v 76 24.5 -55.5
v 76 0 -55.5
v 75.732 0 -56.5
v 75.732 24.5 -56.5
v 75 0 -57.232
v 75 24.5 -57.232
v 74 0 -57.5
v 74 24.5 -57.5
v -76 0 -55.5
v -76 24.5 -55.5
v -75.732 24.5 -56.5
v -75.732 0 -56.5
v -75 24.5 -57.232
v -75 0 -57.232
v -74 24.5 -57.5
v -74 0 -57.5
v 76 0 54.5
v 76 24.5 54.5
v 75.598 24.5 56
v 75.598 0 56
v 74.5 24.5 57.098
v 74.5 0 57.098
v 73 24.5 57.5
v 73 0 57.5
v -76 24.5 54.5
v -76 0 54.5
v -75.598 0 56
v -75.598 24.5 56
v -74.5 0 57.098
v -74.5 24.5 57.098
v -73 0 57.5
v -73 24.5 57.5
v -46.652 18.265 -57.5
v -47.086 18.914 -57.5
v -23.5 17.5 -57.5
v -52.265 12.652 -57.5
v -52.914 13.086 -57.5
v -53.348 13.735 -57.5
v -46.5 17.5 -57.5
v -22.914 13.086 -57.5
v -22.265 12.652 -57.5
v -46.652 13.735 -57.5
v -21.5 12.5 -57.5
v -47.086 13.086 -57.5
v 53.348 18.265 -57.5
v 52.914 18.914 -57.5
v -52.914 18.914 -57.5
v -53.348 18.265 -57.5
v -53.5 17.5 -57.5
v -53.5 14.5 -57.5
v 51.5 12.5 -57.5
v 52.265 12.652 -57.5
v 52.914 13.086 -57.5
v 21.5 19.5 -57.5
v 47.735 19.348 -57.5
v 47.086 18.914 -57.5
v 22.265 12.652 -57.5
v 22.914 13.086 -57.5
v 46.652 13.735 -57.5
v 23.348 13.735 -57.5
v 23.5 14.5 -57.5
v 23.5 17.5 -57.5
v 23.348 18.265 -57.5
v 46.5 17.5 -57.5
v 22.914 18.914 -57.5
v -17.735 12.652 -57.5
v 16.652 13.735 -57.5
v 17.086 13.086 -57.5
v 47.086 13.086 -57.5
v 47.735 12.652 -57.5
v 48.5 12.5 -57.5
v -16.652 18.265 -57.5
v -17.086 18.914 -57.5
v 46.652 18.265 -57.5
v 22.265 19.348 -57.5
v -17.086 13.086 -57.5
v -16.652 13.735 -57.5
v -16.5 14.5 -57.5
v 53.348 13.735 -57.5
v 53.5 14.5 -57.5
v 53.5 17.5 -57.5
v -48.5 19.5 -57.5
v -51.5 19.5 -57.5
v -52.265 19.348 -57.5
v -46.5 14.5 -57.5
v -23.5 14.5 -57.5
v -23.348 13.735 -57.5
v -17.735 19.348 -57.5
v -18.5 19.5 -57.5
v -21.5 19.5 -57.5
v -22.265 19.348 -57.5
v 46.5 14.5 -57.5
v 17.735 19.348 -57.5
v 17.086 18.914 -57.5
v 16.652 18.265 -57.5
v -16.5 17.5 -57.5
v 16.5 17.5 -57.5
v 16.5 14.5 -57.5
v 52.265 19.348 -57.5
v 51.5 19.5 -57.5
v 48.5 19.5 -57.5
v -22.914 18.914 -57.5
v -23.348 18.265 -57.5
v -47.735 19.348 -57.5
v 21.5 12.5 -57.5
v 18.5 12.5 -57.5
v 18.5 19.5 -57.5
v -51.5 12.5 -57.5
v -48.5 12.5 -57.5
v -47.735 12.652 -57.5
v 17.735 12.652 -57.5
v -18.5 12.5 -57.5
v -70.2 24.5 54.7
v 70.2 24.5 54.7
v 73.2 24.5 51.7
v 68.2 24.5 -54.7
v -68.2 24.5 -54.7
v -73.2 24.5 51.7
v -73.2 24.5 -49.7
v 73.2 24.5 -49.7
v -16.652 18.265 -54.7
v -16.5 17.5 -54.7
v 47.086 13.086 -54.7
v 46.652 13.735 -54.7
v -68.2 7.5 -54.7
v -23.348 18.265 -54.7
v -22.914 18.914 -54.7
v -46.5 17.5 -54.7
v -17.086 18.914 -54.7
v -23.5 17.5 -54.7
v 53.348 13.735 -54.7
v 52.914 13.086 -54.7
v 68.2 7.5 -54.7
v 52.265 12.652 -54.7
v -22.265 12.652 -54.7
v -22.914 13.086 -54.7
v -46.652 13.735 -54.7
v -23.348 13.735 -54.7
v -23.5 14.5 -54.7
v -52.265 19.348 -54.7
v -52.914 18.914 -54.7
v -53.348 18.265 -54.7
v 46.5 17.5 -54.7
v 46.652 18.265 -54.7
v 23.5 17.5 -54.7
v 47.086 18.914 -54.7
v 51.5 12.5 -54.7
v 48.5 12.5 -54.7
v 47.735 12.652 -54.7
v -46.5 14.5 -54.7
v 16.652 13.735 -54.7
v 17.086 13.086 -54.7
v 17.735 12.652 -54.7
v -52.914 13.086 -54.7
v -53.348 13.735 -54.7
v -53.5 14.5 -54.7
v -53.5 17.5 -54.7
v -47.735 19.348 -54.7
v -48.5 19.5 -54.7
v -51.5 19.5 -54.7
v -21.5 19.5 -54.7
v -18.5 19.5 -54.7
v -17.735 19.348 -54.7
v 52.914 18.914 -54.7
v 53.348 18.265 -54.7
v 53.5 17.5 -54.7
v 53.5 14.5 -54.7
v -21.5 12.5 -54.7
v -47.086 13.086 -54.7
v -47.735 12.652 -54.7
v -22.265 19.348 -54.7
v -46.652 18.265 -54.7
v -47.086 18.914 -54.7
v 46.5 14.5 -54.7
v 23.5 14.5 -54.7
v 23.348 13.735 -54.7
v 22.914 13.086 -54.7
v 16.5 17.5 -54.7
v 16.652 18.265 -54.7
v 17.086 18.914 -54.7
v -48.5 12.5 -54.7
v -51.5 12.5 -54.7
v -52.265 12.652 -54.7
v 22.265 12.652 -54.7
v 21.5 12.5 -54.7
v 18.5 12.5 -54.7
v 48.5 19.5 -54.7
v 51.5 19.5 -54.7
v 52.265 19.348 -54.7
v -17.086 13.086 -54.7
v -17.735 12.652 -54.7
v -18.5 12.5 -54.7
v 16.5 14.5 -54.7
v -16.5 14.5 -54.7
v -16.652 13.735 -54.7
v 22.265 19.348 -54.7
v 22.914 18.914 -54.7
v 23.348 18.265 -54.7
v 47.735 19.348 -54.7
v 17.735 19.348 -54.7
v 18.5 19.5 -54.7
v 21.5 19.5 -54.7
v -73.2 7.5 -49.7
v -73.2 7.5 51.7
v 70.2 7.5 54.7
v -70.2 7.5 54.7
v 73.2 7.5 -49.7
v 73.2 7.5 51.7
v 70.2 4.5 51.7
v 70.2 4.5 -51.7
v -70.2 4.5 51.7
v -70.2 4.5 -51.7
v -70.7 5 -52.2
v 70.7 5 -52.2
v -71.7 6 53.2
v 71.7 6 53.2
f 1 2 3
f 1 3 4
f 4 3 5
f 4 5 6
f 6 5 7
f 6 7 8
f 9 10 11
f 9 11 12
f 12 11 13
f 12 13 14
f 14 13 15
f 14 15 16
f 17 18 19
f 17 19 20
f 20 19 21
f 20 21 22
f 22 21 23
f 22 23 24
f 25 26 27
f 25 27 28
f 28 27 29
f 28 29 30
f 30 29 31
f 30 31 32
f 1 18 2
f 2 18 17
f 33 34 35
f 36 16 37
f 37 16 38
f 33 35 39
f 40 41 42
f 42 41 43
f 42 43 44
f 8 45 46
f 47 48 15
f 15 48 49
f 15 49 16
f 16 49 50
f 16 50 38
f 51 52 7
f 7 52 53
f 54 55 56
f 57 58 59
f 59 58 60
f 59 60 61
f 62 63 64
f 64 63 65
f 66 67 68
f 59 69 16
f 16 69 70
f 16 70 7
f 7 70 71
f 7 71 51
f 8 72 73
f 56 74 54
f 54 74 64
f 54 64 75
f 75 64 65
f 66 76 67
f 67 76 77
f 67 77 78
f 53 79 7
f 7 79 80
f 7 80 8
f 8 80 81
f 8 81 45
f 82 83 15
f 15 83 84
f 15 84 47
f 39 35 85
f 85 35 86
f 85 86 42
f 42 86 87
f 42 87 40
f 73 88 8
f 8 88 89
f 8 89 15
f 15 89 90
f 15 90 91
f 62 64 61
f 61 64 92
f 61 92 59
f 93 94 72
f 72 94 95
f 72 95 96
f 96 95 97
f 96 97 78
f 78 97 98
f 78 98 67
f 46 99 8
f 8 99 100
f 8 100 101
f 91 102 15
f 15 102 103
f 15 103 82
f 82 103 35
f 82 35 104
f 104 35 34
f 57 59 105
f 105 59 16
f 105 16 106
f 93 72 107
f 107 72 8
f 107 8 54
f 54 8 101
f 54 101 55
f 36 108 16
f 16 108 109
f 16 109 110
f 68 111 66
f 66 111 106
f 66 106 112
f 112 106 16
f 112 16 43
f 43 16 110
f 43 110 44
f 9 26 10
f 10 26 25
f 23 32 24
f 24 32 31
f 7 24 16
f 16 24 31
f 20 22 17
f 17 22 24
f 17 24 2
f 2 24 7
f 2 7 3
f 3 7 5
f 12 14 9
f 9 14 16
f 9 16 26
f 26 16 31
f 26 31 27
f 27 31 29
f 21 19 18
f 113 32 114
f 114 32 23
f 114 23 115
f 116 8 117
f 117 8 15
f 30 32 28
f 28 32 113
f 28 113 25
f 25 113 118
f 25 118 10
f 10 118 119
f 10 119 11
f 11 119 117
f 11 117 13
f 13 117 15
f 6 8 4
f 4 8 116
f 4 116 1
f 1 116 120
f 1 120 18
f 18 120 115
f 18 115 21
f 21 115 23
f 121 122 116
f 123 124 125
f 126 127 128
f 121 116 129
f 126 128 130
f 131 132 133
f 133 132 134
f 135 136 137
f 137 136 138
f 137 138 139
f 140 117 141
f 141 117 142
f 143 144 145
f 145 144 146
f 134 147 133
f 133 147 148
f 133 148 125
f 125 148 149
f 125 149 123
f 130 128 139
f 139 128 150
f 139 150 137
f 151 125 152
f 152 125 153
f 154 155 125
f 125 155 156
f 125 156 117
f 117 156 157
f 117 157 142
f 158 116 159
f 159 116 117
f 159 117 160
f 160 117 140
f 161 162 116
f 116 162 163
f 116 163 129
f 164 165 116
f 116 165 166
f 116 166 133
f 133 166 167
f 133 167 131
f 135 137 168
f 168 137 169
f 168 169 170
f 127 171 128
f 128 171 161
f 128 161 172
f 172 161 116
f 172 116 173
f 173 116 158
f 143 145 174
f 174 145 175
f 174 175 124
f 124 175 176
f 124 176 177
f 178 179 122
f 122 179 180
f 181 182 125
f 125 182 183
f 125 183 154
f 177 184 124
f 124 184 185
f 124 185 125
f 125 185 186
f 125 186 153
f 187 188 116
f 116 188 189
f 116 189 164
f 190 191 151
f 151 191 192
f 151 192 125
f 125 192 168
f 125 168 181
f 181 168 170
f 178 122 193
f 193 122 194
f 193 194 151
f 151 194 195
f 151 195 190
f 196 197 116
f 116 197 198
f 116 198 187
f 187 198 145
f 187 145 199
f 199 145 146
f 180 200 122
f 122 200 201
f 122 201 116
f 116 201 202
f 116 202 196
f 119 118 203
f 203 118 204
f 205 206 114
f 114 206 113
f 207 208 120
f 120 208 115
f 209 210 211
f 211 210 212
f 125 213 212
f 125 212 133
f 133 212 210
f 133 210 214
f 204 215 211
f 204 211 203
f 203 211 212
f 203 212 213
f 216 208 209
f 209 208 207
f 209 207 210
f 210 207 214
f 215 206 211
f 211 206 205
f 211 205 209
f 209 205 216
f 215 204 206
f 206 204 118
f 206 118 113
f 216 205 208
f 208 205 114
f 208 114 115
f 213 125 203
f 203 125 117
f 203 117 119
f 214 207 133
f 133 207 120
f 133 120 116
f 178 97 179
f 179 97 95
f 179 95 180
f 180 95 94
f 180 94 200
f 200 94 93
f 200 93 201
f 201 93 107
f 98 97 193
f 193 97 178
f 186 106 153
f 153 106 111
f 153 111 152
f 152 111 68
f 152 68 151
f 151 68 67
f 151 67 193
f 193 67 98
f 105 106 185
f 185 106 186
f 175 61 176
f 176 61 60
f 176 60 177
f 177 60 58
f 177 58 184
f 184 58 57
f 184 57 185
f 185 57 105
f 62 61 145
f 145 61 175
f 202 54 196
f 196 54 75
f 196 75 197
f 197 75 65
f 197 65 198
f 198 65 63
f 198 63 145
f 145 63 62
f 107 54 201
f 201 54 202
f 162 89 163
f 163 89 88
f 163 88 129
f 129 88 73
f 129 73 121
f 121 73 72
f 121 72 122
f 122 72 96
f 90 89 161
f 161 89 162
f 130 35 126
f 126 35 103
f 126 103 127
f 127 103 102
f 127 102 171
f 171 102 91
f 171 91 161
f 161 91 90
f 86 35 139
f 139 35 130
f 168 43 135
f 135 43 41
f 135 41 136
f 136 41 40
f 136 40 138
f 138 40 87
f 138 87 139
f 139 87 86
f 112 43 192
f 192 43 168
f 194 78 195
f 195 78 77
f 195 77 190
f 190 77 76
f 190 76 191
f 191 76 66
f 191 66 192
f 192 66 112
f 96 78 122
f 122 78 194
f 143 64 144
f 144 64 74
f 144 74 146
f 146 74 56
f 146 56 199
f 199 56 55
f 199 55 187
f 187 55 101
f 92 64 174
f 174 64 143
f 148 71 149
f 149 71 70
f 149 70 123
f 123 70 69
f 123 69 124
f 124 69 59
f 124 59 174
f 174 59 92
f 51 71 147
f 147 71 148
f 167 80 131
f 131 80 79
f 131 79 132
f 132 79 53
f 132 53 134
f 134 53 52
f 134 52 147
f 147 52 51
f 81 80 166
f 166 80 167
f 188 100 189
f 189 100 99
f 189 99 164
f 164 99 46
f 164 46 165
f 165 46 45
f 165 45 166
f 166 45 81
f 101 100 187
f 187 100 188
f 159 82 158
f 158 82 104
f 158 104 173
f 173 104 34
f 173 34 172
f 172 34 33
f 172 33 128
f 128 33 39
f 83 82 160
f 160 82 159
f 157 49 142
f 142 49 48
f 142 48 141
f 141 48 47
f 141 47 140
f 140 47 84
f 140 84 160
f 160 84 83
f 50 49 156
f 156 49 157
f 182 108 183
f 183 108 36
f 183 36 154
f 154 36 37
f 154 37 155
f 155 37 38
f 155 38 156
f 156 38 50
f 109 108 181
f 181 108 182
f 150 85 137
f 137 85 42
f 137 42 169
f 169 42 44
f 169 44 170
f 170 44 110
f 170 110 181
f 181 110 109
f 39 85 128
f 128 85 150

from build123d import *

# Parameters (mm, degrees)
ESBO_O2_W             = 152
ESBO_O2_H             = 115
BASE_DEPTH            = 4.5
ESBO_O3_W             = 152
ESBO_O3_H             = 115
ESBO_O3_W_2           = 146.4
ESBO_O3_H_2           = 109.4
PAREDES_DEPTH         = 20
CHANFRO_DA_BASE_SIZE  = 3
FILETE7_R             = 3
FILETE8_R             = 3
FILETE10_R            = 2
FILETE12_R            = 2
CHANFRO8_SIZE         = 3
CHANFRO9_SIZE         = 3
CHANFRO14_SIZE        = 5
CHANFRO17_SIZE        = 5
CORTE_EXTRUS_O4_DEPTH = 10


with BuildPart() as part:
    # Esboço2 → Base (new body)
    with BuildSketch(Plane(origin=(0, 0, 0), x_dir=(1, 0, 0), z_dir=(0, 1, 0))):
        Rectangle(ESBO_O2_W, ESBO_O2_H)
    extrude(amount=BASE_DEPTH)

    # Esboço3 → Paredes (add)
    with BuildSketch(Plane(origin=(0, 4.5, 0), x_dir=(1, 0, 0), z_dir=(0, 1, 0))):
        Rectangle(ESBO_O3_W, ESBO_O3_H)
        Rectangle(ESBO_O3_W_2, ESBO_O3_H_2, mode=Mode.SUBTRACT)
    extrude(amount=PAREDES_DEPTH)

    # Chanfro da Base
    chanfro_da_base_edges = [part.edges().sort_by_distance(p)[0] for p in [
        (0, 4.5, -54.7),
        (-73.2, 4.5, 0),
        (0, 4.5, 54.7),
        (73.2, 4.5, 0),
    ]]
    chamfer(chanfro_da_base_edges, length=CHANFRO_DA_BASE_SIZE)

    # Filete7
    filete7_edges = [part.edges().sort_by_distance(p)[0] for p in [
        (-76, 12.25, 57.5),
    ]]
    fillet(filete7_edges, radius=FILETE7_R)

    # Filete8
    filete8_edges = [part.edges().sort_by_distance(p)[0] for p in [
        (76, 12.25, 57.5),
    ]]
    fillet(filete8_edges, radius=FILETE8_R)

    # Filete10
    filete10_edges = [part.edges().sort_by_distance(p)[0] for p in [
        (-76, 12.25, -57.5),
    ]]
    fillet(filete10_edges, radius=FILETE10_R)

    # Filete12
    filete12_edges = [part.edges().sort_by_distance(p)[0] for p in [
        (76, 12.25, -57.5),
    ]]
    fillet(filete12_edges, radius=FILETE12_R)

    # Chanfro8
    chanfro8_edges = [part.edges().sort_by_distance(p)[0] for p in [
        (-73.2, 16, 54.7),
    ]]
    chamfer(chanfro8_edges, length=CHANFRO8_SIZE)

    # Chanfro9
    chanfro9_edges = [part.edges().sort_by_distance(p)[0] for p in [
        (73.2, 16, 54.7),
    ]]
    chamfer(chanfro9_edges, length=CHANFRO9_SIZE)

    # Chanfro14
    chanfro14_edges = [part.edges().sort_by_distance(p)[0] for p in [
        (-73.2, 16, -54.7),
    ]]
    chamfer(chanfro14_edges, length=CHANFRO14_SIZE)

    # Chanfro17
    chanfro17_edges = [part.edges().sort_by_distance(p)[0] for p in [
        (73.2, 16, -54.7),
    ]]
    chamfer(chanfro17_edges, length=CHANFRO17_SIZE)

    # Esboço6 → Corte-extrusão4 (cut)
    with BuildSketch(Plane(origin=(0, 0, -57.5), x_dir=(-1, 0, 0), z_dir=(0, 0, -1))):
        with BuildLine():
            Line((16.5, 17.5), (16.5, 14.5))
            ThreePointArc((16.5, 14.5), (17.085786438, 13.085786438), (18.5, 12.5))
            Line((18.5, 12.5), (21.5, 12.5))
            ThreePointArc((21.5, 12.5), (22.914213562, 13.085786438), (23.5, 14.5))
            Line((23.5, 14.5), (23.5, 17.5))
            ThreePointArc((23.5, 17.5), (22.914213562, 18.914213562), (21.5, 19.5))
            Line((21.5, 19.5), (18.5, 19.5))
            ThreePointArc((18.5, 19.5), (17.085786438, 18.914213562), (16.5, 17.5))
        make_face()
        with BuildLine():
            Line((-21.5, 19.5), (-18.5, 19.5))
            ThreePointArc((-18.5, 19.5), (-17.085786438, 18.914213562), (-16.5, 17.5))
            Line((-16.5, 17.5), (-16.5, 14.5))
            ThreePointArc((-16.5, 14.5), (-17.085786438, 13.085786438), (-18.5, 12.5))
            Line((-18.5, 12.5), (-21.5, 12.5))
            ThreePointArc((-21.5, 12.5), (-22.914213562, 13.085786438), (-23.5, 14.5))
            Line((-23.5, 14.5), (-23.5, 17.5))
            ThreePointArc((-23.5, 17.5), (-22.914213562, 18.914213562), (-21.5, 19.5))
        make_face()
        with BuildLine():
            Line((46.5, 17.5), (46.5, 14.5))
            ThreePointArc((46.5, 14.5), (47.085786438, 13.085786438), (48.5, 12.5))
            Line((48.5, 12.5), (51.5, 12.5))
            ThreePointArc((51.5, 12.5), (52.914213562, 13.085786438), (53.5, 14.5))
            Line((53.5, 14.5), (53.5, 17.5))
            ThreePointArc((53.5, 17.5), (52.914213562, 18.914213562), (51.5, 19.5))
            Line((51.5, 19.5), (48.5, 19.5))
            ThreePointArc((48.5, 19.5), (47.085786438, 18.914213562), (46.5, 17.5))
        make_face()
        with BuildLine():
            Line((-51.5, 19.5), (-48.5, 19.5))
            ThreePointArc((-48.5, 19.5), (-47.085786438, 18.914213562), (-46.5, 17.5))
            Line((-46.5, 17.5), (-46.5, 14.5))
            ThreePointArc((-46.5, 14.5), (-47.085786438, 13.085786438), (-48.5, 12.5))
            Line((-48.5, 12.5), (-51.5, 12.5))
            ThreePointArc((-51.5, 12.5), (-52.914213562, 13.085786438), (-53.5, 14.5))
            Line((-53.5, 14.5), (-53.5, 17.5))
            ThreePointArc((-53.5, 17.5), (-52.914213562, 18.914213562), (-51.5, 19.5))
        make_face()
    extrude(amount=-CORTE_EXTRUS_O4_DEPTH, mode=Mode.SUBTRACT)


solid = part.part
